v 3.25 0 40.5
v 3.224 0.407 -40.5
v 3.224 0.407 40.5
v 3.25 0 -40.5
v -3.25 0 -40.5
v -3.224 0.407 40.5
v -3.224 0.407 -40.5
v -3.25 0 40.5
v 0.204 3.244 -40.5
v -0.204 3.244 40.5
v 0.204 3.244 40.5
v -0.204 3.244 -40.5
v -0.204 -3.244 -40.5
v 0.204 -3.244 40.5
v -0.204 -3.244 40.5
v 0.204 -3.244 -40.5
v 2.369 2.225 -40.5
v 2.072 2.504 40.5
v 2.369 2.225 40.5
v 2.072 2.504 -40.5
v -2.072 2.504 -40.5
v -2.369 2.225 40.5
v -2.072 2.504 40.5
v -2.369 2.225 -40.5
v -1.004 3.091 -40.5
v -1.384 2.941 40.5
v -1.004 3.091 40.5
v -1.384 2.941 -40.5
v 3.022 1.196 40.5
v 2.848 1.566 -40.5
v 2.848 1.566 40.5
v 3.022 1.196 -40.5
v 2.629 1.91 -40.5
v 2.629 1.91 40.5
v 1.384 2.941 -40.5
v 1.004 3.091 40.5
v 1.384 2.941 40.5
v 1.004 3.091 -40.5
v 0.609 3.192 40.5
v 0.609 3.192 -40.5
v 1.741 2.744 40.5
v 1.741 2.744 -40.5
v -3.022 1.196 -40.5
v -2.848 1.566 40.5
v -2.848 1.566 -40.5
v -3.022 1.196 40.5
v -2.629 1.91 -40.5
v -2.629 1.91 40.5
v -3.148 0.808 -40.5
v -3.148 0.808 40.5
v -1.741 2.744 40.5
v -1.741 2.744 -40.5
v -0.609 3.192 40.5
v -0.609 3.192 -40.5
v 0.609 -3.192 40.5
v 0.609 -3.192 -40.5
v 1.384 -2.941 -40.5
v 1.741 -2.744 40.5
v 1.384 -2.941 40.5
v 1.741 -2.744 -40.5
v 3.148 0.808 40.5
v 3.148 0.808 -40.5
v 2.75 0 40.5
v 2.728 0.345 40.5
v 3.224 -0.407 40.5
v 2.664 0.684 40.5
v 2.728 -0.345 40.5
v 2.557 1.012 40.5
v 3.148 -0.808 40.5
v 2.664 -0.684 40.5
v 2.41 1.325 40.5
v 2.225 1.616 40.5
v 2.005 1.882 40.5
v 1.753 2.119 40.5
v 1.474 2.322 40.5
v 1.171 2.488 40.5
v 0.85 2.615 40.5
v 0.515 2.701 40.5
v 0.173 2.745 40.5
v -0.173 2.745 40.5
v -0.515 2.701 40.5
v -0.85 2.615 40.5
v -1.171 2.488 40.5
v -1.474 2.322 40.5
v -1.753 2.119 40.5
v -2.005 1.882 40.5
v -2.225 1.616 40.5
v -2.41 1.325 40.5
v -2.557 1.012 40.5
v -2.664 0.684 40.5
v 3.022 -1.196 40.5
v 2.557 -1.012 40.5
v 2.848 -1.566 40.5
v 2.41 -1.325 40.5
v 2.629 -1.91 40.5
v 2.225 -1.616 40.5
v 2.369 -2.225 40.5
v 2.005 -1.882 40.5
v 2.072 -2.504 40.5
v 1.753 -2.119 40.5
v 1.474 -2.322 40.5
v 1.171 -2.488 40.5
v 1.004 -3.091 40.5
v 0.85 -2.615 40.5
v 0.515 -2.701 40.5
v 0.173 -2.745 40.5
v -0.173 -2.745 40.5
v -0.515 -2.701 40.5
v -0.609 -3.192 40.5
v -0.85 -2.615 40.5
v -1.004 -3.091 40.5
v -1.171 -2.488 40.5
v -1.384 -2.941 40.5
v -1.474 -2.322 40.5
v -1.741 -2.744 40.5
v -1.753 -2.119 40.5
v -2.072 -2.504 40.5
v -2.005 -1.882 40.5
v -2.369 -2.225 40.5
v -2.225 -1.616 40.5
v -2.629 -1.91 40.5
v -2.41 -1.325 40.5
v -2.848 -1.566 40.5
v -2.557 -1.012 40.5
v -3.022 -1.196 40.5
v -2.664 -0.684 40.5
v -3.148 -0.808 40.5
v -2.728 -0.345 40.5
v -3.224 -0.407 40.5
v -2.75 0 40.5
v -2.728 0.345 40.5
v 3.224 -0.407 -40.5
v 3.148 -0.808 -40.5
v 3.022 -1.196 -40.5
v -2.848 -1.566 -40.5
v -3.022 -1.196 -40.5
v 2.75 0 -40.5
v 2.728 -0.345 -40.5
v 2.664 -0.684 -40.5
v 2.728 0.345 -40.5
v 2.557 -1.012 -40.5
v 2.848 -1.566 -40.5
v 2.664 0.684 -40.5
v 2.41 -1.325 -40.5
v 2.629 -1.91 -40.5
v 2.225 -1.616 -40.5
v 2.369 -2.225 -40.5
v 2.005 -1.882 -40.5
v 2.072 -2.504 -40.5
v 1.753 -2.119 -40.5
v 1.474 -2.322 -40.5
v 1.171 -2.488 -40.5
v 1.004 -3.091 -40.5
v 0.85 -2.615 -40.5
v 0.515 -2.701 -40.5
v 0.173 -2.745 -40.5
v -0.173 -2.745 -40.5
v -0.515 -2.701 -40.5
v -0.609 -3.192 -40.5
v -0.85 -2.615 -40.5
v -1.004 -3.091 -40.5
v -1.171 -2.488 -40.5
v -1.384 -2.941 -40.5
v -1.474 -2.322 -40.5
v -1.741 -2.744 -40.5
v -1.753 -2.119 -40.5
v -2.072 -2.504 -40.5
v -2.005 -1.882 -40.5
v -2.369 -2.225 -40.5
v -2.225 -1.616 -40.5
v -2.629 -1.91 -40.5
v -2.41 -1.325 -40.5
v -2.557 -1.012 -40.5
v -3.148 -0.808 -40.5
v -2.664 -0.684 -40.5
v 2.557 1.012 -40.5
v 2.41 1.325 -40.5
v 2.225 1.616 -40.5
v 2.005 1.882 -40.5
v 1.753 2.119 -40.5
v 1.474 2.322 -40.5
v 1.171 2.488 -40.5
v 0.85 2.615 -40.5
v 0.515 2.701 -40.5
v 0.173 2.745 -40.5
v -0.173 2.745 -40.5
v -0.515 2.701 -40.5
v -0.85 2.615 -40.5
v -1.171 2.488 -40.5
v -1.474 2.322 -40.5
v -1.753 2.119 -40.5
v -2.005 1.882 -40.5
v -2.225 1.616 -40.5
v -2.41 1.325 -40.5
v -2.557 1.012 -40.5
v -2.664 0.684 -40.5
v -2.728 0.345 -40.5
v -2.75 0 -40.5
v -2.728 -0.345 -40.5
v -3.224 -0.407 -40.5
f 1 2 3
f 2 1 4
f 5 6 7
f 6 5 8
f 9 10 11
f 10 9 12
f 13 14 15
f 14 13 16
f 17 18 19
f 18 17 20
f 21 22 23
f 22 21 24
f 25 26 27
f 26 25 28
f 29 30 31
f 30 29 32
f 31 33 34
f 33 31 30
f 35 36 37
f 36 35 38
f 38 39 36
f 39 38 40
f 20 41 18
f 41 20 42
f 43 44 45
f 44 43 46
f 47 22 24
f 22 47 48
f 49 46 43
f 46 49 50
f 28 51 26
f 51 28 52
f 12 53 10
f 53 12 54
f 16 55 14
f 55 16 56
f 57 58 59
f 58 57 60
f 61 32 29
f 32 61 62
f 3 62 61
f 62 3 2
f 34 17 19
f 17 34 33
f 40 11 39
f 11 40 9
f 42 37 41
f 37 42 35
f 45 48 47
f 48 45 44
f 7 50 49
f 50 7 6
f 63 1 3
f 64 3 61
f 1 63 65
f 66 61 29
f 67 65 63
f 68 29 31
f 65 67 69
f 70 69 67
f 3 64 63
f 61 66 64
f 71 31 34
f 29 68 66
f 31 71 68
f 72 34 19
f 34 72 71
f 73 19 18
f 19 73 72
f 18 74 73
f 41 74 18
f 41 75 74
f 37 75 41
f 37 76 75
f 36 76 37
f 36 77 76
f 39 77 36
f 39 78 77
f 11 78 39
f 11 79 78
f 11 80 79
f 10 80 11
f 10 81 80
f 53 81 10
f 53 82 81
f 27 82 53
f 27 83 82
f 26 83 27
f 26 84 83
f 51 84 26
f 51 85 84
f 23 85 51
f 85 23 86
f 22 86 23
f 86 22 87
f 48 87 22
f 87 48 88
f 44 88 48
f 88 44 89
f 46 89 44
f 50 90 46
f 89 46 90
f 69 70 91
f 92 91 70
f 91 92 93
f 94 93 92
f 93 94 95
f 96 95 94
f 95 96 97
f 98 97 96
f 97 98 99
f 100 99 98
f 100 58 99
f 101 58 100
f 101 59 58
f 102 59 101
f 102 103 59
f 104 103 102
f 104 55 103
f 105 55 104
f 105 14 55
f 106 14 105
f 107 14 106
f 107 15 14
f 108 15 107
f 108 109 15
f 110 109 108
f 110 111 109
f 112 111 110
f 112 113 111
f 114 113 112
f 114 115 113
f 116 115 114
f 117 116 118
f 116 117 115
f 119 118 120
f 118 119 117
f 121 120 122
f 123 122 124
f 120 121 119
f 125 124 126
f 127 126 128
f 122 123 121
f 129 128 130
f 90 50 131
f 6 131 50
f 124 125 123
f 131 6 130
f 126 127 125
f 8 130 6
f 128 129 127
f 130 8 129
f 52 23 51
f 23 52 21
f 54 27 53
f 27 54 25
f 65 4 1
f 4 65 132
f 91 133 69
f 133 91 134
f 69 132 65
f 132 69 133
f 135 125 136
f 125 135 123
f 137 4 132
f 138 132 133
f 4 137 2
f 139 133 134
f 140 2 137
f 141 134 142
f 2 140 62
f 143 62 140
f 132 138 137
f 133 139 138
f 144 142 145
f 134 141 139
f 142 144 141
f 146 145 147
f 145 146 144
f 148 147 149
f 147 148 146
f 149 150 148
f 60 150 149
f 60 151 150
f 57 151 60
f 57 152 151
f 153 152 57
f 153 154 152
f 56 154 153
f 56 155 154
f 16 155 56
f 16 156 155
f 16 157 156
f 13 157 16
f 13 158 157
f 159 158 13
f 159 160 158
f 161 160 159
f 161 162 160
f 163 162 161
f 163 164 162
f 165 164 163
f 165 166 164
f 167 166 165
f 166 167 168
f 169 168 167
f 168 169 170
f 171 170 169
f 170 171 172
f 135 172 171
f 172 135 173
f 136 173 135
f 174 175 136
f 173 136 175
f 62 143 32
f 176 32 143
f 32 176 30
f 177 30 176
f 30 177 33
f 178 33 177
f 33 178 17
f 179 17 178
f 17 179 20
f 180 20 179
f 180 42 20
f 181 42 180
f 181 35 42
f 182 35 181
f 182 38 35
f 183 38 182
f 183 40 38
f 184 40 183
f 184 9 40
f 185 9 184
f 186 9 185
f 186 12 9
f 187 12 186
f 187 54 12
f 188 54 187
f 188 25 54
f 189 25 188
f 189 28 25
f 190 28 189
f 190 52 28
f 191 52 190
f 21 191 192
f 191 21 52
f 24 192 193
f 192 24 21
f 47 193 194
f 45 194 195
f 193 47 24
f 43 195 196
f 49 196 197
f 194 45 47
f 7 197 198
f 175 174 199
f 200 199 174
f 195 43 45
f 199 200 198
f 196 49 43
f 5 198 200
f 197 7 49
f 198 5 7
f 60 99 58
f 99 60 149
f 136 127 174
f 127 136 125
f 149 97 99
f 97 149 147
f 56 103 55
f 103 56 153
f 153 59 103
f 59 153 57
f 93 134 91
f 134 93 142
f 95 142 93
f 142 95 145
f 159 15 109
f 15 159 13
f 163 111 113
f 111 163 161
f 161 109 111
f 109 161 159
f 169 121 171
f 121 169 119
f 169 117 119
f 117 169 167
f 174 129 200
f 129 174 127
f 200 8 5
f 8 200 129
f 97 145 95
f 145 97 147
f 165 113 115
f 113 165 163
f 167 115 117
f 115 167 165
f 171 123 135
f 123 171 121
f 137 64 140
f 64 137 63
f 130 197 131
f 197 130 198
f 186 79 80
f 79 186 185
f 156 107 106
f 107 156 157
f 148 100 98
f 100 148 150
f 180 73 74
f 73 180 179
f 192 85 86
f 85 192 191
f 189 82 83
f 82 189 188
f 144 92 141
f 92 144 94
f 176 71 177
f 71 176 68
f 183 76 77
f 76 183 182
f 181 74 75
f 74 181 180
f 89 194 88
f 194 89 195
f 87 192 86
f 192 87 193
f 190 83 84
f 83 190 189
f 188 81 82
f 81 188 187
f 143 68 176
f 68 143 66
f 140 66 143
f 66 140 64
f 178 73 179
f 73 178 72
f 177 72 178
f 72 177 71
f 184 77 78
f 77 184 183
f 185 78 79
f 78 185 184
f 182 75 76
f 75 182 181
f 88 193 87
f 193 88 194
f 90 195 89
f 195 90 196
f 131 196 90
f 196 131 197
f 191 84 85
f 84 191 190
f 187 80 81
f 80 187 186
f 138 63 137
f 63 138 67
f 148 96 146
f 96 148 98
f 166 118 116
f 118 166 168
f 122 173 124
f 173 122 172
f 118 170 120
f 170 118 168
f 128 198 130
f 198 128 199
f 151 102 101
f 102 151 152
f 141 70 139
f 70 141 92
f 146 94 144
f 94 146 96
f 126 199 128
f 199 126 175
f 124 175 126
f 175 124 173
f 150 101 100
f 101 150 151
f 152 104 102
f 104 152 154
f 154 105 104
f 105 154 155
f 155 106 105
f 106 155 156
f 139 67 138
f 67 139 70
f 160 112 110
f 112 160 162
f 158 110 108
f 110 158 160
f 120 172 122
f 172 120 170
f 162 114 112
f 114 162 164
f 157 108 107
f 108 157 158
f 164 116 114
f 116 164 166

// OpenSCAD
$fn = 50;


difference() {
	union() {
		translate(v = [0, 0, -40.5000000000]) {
			cylinder(h = 81, r = 3.2500000000);
		}
	}
	union() {
		translate(v = [0, 0, -100.0000000000]) {
			cylinder(h = 200, r = 2.7500000000);
		}
	}
}
